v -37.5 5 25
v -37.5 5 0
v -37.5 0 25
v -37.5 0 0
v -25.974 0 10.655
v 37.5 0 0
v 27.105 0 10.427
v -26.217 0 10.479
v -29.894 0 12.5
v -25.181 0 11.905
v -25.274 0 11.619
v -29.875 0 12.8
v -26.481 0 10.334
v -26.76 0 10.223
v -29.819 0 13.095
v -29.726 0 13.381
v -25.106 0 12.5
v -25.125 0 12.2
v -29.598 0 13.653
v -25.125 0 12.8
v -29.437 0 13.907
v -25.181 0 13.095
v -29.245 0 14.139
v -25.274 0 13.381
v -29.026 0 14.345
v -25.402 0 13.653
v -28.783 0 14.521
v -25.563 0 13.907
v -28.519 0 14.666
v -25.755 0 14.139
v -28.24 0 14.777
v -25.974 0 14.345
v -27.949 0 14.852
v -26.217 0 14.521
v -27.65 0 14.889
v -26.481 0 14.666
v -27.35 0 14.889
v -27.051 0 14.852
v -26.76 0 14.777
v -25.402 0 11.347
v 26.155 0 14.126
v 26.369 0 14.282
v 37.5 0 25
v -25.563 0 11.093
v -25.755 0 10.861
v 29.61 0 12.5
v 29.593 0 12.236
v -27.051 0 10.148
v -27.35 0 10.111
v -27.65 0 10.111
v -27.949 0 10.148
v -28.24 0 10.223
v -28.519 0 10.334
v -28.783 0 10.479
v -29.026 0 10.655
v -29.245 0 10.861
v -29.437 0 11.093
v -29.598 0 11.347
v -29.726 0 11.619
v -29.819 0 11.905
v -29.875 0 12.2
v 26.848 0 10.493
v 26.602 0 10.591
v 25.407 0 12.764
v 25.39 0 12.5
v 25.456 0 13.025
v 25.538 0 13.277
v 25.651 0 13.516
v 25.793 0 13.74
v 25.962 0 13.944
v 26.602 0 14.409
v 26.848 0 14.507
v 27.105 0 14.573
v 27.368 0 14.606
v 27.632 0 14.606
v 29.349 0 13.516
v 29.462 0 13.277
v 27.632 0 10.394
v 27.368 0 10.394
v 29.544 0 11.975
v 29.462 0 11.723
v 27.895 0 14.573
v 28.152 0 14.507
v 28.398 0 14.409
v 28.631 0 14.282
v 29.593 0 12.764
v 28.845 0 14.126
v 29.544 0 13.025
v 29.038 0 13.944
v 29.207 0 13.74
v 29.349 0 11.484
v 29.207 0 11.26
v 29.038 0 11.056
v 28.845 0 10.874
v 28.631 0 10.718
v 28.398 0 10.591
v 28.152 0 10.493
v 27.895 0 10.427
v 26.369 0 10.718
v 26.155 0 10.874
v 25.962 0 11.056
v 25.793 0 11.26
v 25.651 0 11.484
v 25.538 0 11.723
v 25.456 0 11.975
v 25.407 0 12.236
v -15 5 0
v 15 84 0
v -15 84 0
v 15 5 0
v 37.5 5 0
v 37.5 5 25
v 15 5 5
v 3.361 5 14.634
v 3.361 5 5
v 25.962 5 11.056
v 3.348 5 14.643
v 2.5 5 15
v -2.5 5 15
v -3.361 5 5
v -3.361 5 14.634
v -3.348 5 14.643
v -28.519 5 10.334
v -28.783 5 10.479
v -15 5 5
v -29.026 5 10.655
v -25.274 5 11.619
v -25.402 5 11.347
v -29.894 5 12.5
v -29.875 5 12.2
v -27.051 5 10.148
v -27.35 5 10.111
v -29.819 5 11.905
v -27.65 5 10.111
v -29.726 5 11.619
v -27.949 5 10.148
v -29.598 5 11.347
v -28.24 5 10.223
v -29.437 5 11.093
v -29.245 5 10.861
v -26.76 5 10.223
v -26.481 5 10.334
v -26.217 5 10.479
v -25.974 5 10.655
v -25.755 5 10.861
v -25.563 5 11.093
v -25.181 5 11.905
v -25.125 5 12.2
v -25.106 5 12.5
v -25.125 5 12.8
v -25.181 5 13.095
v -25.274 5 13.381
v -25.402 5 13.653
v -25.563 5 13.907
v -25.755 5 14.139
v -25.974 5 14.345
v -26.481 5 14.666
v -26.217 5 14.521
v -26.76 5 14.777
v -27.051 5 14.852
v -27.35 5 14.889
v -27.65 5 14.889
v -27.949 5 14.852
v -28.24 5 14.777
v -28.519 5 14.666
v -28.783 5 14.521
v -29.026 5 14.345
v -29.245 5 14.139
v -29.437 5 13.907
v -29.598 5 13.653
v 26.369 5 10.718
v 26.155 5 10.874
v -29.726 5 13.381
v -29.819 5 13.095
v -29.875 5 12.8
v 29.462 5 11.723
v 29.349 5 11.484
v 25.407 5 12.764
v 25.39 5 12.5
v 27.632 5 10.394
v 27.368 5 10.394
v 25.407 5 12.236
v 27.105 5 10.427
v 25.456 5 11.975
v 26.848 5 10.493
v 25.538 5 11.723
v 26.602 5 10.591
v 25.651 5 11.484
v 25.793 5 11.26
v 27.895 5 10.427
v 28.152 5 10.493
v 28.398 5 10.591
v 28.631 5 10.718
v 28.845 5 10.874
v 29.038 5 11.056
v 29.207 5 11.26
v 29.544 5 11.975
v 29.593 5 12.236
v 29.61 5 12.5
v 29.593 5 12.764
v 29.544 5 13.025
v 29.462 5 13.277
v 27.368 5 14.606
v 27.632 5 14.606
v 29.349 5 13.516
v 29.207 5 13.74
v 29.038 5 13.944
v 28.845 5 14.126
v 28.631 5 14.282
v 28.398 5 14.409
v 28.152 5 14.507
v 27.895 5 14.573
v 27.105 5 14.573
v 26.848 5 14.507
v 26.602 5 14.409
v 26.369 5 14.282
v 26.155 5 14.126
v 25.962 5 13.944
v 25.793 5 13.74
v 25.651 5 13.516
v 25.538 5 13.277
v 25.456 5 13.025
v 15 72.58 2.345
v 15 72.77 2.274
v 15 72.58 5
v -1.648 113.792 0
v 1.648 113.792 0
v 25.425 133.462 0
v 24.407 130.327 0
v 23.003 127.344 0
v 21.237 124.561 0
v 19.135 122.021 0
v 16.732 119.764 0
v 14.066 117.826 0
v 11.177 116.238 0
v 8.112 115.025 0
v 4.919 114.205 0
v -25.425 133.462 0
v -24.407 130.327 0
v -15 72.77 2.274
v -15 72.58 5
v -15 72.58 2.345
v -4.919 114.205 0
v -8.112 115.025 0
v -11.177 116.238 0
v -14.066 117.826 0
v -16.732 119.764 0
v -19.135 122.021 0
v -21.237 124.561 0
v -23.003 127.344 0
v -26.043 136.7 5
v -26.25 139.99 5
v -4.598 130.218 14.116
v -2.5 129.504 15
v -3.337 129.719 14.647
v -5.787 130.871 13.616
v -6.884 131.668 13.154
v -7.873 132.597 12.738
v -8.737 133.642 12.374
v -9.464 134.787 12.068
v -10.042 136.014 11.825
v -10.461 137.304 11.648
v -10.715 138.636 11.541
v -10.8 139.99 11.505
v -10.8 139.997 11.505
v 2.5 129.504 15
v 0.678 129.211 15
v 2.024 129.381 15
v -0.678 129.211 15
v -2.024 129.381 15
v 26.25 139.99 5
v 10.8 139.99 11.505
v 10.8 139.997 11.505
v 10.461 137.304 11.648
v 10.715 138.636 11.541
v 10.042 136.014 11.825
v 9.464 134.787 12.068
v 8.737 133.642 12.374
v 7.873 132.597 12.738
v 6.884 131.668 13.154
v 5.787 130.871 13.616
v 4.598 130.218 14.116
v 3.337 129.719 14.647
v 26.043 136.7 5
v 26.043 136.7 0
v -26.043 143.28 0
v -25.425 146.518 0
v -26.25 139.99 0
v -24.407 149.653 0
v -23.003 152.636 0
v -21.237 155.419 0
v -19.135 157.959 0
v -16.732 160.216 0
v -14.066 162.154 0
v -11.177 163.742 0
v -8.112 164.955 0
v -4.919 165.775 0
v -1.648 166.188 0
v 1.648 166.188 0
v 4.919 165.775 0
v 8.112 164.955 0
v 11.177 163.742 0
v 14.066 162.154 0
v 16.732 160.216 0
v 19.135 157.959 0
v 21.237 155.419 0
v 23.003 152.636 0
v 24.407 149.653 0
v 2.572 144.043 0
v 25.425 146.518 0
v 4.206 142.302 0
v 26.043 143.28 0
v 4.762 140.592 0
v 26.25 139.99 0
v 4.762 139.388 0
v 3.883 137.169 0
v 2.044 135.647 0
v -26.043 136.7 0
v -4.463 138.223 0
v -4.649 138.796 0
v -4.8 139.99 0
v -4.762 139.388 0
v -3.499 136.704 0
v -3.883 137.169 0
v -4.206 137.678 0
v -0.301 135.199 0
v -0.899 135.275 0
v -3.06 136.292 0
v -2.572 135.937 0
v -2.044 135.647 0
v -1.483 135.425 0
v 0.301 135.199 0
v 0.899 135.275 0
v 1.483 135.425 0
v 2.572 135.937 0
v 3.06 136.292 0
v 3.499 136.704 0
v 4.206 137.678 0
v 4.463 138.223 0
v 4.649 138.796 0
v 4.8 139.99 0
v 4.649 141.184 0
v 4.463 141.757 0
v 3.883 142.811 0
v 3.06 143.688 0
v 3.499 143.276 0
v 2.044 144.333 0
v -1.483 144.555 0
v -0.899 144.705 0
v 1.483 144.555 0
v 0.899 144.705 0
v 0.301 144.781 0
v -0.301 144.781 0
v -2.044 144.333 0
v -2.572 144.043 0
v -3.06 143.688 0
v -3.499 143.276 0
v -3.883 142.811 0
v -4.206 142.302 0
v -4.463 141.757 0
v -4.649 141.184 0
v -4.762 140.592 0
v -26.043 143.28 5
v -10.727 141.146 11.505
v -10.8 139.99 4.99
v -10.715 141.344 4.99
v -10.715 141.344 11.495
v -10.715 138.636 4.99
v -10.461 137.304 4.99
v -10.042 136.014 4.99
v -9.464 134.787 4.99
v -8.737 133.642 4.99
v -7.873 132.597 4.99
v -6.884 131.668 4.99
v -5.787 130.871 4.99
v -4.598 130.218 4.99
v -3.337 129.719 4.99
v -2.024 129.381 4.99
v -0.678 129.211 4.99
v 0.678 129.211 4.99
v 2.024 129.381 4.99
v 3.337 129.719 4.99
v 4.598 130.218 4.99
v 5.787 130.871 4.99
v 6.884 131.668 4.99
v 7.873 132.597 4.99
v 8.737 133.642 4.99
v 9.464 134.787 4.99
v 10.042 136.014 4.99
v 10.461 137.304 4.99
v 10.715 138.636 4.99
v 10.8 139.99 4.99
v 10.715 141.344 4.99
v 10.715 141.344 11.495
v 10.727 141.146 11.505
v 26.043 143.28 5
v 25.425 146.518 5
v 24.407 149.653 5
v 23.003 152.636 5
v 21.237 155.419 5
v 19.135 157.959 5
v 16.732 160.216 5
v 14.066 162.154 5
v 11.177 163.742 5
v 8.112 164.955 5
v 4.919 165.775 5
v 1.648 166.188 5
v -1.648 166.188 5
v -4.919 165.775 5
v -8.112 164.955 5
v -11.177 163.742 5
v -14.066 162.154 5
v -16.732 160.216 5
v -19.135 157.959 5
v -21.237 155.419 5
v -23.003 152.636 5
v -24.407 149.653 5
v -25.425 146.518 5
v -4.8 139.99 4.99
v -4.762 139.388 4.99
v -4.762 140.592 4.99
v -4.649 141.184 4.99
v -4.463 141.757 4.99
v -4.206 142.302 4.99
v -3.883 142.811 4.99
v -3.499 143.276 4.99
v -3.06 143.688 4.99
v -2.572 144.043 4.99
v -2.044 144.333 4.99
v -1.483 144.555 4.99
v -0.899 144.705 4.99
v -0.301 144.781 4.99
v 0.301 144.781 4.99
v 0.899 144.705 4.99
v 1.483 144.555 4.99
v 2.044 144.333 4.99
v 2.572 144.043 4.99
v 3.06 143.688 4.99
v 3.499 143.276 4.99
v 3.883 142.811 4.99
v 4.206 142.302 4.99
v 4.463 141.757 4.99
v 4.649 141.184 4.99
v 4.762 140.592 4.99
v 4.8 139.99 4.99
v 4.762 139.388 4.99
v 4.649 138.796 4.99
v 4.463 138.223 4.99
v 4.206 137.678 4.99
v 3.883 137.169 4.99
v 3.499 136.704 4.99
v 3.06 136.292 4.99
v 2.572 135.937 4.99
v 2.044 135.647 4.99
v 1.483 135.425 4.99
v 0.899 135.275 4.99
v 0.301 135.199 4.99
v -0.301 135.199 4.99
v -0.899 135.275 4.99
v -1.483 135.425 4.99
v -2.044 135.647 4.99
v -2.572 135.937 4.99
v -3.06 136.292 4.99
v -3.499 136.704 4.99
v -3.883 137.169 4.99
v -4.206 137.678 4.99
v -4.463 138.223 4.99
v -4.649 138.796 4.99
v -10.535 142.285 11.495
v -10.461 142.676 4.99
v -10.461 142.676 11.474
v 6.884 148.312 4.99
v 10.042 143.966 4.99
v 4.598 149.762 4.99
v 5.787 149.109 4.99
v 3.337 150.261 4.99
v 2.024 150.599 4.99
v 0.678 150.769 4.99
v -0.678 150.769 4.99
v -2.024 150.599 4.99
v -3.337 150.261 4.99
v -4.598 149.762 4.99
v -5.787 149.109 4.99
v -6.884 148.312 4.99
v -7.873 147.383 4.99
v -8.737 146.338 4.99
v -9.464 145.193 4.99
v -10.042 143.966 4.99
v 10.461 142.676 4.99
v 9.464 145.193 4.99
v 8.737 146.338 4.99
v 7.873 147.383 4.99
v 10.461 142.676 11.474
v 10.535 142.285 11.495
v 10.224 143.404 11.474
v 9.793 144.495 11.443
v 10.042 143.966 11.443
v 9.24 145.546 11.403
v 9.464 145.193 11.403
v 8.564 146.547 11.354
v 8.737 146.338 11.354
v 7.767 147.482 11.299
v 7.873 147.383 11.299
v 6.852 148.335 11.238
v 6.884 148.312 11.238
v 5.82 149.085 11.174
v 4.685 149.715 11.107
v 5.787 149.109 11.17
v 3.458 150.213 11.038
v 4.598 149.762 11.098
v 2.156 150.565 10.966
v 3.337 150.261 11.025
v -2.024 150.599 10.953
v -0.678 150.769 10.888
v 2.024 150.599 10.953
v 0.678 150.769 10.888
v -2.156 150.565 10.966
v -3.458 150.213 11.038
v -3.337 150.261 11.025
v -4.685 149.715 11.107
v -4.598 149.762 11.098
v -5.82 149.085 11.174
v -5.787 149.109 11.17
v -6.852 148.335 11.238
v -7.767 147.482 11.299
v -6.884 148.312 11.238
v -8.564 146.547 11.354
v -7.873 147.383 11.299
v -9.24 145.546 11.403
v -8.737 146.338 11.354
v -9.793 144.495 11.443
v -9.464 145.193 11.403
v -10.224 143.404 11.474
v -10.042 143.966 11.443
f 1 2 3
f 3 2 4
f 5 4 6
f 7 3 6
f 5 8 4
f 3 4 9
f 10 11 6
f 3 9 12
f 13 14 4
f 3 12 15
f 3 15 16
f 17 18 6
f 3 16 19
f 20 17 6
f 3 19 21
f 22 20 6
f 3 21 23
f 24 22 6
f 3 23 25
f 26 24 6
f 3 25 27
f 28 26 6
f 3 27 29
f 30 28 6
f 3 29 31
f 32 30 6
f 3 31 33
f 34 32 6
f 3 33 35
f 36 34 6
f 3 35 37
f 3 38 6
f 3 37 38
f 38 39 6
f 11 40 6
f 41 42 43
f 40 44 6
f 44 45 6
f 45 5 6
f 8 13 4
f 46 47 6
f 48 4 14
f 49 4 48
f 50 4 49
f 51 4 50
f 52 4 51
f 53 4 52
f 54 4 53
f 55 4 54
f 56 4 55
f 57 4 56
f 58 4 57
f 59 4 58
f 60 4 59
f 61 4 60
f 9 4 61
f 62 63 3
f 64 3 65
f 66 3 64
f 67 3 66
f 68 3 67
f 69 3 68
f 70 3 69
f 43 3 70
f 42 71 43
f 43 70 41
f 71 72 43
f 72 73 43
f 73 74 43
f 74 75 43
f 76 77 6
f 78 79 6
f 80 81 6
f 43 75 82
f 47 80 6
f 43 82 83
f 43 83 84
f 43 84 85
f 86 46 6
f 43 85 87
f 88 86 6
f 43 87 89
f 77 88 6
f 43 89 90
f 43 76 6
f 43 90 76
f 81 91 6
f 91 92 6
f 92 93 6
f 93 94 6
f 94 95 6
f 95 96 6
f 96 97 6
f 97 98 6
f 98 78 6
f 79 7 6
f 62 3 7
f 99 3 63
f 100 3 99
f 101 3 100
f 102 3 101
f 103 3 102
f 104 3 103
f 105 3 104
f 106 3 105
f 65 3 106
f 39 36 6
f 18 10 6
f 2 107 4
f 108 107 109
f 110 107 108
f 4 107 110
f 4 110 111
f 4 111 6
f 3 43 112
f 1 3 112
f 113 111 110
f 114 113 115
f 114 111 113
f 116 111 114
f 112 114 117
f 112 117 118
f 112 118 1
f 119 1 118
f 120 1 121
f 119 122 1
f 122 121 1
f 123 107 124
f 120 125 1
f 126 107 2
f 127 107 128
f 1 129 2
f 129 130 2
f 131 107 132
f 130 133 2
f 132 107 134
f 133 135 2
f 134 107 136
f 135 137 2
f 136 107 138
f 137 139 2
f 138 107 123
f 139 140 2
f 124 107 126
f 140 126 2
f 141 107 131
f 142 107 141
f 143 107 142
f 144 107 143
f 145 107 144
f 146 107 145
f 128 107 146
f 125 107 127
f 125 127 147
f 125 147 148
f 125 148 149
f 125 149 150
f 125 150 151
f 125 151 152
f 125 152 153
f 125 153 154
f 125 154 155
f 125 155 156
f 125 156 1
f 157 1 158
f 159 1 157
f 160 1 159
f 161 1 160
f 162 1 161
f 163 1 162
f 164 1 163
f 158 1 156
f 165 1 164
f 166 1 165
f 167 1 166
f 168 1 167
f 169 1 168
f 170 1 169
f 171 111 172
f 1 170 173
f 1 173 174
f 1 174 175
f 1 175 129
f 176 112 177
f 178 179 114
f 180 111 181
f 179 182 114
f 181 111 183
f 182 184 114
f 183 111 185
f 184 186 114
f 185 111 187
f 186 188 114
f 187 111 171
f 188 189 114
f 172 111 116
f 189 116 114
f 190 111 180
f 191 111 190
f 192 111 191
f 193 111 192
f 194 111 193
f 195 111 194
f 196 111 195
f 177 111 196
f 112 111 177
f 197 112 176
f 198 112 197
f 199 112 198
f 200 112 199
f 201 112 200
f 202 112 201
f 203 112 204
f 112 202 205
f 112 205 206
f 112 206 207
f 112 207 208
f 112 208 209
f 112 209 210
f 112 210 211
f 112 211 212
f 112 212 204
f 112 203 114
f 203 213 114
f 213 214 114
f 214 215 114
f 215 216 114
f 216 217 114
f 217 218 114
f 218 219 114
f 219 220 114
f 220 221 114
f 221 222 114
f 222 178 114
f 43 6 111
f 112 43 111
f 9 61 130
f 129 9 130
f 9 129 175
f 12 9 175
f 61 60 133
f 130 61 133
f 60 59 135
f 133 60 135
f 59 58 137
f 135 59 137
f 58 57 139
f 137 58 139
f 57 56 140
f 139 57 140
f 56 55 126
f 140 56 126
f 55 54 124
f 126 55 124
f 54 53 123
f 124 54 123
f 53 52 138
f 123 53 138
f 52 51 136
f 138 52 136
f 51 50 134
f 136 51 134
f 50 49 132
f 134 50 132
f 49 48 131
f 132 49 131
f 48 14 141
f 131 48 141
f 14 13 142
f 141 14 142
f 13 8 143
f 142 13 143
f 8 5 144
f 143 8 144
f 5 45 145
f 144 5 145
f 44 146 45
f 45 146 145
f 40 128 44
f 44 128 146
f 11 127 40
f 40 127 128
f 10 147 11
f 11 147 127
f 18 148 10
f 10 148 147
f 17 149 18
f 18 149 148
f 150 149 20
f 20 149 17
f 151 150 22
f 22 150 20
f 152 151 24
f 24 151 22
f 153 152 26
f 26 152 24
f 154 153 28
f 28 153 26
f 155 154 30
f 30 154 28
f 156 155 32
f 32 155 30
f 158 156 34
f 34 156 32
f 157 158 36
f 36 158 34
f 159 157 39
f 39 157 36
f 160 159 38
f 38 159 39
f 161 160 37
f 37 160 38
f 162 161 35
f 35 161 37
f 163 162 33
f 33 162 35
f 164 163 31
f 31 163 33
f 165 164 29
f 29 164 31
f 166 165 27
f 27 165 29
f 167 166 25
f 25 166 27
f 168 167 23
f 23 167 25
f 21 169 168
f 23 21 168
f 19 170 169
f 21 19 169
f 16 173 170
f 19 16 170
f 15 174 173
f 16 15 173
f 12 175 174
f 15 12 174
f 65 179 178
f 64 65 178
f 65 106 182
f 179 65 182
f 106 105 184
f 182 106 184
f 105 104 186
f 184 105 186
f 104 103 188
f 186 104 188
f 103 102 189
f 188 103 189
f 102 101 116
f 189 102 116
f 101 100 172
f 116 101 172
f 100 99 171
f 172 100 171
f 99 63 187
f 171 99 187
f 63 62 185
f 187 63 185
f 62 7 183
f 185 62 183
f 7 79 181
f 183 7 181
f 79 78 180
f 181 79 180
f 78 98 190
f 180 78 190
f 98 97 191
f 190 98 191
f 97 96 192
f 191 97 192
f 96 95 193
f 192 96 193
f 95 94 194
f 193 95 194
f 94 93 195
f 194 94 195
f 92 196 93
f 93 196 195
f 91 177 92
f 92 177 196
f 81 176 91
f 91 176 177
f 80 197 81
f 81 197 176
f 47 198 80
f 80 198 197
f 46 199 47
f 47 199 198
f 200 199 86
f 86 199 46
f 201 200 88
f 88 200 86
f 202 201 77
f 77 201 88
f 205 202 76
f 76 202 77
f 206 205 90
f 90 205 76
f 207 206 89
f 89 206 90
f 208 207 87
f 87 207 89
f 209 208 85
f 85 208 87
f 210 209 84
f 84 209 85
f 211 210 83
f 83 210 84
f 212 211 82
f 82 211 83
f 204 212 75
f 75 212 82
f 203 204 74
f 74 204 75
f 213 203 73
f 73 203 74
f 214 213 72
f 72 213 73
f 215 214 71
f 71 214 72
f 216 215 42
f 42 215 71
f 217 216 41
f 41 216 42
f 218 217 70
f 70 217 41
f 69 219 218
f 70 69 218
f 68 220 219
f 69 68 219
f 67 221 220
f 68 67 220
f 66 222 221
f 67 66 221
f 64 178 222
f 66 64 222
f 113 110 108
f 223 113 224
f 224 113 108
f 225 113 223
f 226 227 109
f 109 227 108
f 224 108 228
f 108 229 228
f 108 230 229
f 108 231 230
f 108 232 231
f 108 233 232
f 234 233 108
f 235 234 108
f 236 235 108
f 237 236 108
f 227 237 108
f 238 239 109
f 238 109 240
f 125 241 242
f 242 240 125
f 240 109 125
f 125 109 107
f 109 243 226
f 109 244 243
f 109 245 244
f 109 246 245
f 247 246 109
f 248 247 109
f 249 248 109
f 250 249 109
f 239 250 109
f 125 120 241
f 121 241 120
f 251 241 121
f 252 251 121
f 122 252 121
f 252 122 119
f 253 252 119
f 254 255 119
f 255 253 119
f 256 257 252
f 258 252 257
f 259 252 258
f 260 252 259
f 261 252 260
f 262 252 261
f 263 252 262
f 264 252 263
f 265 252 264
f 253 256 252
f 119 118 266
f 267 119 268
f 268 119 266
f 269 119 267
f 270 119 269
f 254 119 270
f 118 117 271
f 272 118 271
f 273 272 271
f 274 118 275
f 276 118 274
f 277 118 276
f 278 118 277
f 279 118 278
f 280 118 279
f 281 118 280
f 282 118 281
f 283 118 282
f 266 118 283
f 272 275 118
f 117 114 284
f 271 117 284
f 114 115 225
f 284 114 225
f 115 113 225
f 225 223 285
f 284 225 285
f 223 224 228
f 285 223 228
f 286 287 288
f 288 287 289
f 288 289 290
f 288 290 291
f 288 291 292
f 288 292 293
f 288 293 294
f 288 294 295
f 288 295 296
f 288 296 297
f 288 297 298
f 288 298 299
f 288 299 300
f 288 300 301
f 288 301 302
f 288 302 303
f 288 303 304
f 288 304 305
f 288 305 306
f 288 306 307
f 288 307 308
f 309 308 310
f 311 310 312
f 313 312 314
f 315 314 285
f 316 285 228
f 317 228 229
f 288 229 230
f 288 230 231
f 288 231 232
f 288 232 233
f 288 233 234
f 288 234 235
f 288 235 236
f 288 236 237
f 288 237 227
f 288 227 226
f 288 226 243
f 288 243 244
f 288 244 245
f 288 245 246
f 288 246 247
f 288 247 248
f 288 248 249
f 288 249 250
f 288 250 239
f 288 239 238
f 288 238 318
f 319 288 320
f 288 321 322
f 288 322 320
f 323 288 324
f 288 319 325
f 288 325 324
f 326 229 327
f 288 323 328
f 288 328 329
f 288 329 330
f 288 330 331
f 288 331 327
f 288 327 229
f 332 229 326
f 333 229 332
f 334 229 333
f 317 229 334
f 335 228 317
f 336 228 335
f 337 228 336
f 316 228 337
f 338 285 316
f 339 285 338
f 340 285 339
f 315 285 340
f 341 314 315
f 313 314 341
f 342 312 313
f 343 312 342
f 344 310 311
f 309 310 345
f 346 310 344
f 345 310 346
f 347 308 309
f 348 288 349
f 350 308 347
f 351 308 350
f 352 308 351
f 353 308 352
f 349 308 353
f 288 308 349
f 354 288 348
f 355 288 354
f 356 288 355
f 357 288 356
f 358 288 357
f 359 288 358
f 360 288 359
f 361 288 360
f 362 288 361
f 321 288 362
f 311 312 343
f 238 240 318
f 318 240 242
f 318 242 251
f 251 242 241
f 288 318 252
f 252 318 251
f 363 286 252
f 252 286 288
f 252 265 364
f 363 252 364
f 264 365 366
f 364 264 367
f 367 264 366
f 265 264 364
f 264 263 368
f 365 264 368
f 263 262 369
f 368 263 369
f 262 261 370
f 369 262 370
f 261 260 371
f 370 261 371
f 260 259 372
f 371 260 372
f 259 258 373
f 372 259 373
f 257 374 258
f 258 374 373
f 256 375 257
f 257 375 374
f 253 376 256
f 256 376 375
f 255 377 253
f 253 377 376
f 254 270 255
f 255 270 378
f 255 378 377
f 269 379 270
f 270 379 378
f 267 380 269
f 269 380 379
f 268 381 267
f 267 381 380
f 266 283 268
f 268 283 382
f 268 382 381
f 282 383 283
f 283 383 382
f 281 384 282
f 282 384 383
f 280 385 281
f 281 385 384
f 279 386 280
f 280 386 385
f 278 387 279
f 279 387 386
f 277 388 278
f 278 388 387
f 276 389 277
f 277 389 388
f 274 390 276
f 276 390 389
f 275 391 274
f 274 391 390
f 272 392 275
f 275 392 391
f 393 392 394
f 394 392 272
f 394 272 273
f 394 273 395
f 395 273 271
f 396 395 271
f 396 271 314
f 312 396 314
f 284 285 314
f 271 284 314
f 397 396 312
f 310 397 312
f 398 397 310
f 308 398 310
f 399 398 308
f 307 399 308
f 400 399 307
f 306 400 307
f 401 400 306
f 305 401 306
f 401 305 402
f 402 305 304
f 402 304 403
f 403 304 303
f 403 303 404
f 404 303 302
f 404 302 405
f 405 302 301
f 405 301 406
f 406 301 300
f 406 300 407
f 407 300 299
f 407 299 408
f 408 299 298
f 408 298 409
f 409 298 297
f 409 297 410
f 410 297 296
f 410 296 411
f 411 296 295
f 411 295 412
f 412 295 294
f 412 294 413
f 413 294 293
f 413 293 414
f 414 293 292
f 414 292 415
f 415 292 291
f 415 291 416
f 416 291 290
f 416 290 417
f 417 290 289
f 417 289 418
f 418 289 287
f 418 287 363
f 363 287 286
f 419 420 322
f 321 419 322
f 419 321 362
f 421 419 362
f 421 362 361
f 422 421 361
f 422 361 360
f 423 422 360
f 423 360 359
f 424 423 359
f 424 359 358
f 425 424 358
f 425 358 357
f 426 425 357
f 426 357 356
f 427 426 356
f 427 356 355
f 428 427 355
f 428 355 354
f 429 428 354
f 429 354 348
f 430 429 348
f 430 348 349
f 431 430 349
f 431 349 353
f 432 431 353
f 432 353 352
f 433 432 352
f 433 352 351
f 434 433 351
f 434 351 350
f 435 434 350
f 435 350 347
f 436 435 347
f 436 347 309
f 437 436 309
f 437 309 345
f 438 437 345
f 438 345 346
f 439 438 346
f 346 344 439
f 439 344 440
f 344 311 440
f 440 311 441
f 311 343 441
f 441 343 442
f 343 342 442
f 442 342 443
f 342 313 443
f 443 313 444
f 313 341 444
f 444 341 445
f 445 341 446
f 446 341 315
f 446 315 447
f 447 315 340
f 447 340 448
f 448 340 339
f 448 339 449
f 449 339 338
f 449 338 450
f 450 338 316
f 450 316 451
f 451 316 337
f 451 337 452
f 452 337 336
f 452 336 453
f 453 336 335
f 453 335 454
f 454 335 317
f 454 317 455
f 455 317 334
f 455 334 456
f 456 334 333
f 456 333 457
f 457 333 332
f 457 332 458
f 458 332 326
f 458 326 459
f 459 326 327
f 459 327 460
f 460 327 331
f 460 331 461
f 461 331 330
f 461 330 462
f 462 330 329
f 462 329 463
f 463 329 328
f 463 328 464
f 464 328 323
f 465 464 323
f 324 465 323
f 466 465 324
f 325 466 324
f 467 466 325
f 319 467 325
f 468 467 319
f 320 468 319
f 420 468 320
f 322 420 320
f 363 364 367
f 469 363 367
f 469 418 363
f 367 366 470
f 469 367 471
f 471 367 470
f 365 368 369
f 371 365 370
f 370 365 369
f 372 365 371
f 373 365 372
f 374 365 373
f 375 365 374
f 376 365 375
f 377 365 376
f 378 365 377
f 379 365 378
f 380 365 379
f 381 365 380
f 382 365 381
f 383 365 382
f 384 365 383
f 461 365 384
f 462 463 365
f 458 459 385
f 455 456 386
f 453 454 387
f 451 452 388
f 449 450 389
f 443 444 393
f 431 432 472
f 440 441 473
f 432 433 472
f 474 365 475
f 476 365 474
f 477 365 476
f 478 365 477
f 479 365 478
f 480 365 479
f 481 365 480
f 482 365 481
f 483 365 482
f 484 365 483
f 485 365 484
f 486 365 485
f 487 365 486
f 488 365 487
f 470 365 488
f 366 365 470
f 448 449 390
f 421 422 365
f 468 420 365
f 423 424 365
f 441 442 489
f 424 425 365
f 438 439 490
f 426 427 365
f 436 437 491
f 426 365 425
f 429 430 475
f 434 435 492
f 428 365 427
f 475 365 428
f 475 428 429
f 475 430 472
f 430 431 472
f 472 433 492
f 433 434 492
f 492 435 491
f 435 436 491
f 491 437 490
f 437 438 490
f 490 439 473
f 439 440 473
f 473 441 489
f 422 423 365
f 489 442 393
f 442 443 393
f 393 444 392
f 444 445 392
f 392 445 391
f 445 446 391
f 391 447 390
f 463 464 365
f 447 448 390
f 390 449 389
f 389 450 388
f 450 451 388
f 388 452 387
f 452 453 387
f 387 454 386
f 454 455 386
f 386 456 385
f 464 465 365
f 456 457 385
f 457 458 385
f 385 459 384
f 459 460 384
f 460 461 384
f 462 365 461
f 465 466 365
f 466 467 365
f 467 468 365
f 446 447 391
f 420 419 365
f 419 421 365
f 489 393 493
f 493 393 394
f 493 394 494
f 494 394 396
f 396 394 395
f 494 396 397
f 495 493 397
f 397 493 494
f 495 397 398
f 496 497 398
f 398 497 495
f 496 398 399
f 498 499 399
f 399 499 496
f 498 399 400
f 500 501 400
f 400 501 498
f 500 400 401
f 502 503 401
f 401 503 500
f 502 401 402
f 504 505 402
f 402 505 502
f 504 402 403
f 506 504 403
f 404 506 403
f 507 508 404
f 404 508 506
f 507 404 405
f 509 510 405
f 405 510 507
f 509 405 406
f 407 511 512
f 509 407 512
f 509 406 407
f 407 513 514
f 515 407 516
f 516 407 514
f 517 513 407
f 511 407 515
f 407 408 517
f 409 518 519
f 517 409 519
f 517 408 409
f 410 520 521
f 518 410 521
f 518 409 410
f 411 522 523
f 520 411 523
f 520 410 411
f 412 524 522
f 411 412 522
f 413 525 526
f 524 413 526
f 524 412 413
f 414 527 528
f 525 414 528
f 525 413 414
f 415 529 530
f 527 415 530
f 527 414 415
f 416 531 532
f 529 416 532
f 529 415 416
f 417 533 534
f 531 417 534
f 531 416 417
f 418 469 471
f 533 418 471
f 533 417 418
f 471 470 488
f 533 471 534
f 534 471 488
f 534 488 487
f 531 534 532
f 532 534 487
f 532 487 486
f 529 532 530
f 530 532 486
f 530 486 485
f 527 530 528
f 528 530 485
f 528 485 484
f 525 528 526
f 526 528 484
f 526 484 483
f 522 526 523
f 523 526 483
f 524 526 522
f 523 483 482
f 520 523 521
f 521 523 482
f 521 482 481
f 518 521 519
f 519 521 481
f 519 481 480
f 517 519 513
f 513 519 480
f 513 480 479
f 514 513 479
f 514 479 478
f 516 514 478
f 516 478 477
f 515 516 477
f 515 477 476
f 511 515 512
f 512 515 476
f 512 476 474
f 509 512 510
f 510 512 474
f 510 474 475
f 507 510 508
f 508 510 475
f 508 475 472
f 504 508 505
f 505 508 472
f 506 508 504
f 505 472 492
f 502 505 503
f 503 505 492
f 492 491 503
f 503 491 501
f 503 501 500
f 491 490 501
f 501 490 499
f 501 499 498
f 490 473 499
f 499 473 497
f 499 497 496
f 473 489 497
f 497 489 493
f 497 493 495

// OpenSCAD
// parametric spool holder
// author Free Beachler for Terawatt Industries

spool_holder(75, 140, 4 + 0.2, 0.01, 1);

module spool_holder(bw, spelev, m4d, o, mirr) {
	if (mirr) {
		mirror([0, 1, 0]) spool_holder_assembly(bw, spelev, m4d, o);
	} else {
		spool_holder_assembly(bw, spelev, m4d, o);
	}
}

module spool_holder_assembly(bw, spelev, m4d, o) {
	translate([-bw / 2, 0, 0]) rotate([90, 0, 0])
	difference() {
		union() {
			spool_holder_base(bw, m4d, o);
			spool_holder_arm(bw, spelev, m4d, o);
		}
		spool_holder_base_screw_holes_positive(bw, m4d, o);
//		spool_holder_gasket_screw_holes_positive(bw, spelev, m4d, o);
		spool_holder_dowel_screw_holes_positive(bw, spelev, m4d, o);
	}
}

module spool_holder_base(bw, m4d, o) {
	cube([bw, 25, 5]);
}

module spool_holder_arm(bw, spelev, m4d, o) {
	translate([(bw - bw * 0.4) / 2, 0, 0]) cube([bw * 0.4, 5, spelev * 0.6]);
	hull() {
		translate([(bw - 5) / 2, 5, 0]) cube([5, 10, spelev]);
		hull() {
			translate([(bw - bw * 0.4) / 2, 0, spelev * 0.6]) cube([bw * 0.4, 5, 30]);
			translate([bw / 2, 5, spelev - o]) rotate([90, 0, 0]) cylinder(r = bw * 0.7 / 2, h = 5, $fn = 50);
		}
	}
}

module spool_holder_base_screw_holes_positive(bw, m4d, o) {
	translate([10, 25 / 2, -o]) cylinder(r = m4d / 2 + + m4d * 0.07, h = 50, $fn = 50);
	translate([bw - 10, 25 / 2, -o]) cylinder(r = m4d / 2 + o, h = 50, $fn = 50);
}

module spool_holder_dowel_screw_holes_positive(bw, spelev, m4d, o) {
	translate([bw / 2, -5, spelev]) {
		// spool dowel holes
		translate([0, 50 - o, -o]) rotate([90, 0, 0]) cylinder(r = 8 / 2 + 8 * 0.1, h = 100, $fn = 50);
		// counterflush
		translate([0, 100 - o, -o]) rotate([90, 0, 0]) cylinder(r = 20 / 2 + 8 * 0.1, h = 90, $fn = 50);
	}
}

module spool_holder_gasket_screw_holes_positive(bw, spelev, m4d, o) {
	translate([bw / 2, 5, spelev]) {
		// gasket attachment holes
		translate([0, 19, 0]) rotate([0, -90, 0]) {
			for (i = [bw * 0.22 + o, -bw * 0.22 - o]) {
				translate([-5, 5 - o, i]) rotate([90, 0, 0]) cylinder(r = m4d / 2 + m4d * 0.07, h = 50, $fn = 50);
			}
			translate([bw * 0.3 * sin(60), 5 - o, 0]) rotate([90, 0, 0]) cylinder(r = m4d / 2 + m4d * 0.07, h = 50, $fn = 50);
			// counterflush
			for (i = [bw * 0.22 + o, -bw * 0.22 - o]) {
				translate([-5, 4.5 - o, i]) rotate([90, 0, 0]) cylinder(r = m4d  + 1 + o, h = 25, $fn = 50);
			}
			translate([bw * 0.3 * sin(60), 4.5 - o, 0]) rotate([90, 0, 0]) cylinder(r = m4d  + 1 + o, h = 25, $fn = 50);
		}
	}
}
